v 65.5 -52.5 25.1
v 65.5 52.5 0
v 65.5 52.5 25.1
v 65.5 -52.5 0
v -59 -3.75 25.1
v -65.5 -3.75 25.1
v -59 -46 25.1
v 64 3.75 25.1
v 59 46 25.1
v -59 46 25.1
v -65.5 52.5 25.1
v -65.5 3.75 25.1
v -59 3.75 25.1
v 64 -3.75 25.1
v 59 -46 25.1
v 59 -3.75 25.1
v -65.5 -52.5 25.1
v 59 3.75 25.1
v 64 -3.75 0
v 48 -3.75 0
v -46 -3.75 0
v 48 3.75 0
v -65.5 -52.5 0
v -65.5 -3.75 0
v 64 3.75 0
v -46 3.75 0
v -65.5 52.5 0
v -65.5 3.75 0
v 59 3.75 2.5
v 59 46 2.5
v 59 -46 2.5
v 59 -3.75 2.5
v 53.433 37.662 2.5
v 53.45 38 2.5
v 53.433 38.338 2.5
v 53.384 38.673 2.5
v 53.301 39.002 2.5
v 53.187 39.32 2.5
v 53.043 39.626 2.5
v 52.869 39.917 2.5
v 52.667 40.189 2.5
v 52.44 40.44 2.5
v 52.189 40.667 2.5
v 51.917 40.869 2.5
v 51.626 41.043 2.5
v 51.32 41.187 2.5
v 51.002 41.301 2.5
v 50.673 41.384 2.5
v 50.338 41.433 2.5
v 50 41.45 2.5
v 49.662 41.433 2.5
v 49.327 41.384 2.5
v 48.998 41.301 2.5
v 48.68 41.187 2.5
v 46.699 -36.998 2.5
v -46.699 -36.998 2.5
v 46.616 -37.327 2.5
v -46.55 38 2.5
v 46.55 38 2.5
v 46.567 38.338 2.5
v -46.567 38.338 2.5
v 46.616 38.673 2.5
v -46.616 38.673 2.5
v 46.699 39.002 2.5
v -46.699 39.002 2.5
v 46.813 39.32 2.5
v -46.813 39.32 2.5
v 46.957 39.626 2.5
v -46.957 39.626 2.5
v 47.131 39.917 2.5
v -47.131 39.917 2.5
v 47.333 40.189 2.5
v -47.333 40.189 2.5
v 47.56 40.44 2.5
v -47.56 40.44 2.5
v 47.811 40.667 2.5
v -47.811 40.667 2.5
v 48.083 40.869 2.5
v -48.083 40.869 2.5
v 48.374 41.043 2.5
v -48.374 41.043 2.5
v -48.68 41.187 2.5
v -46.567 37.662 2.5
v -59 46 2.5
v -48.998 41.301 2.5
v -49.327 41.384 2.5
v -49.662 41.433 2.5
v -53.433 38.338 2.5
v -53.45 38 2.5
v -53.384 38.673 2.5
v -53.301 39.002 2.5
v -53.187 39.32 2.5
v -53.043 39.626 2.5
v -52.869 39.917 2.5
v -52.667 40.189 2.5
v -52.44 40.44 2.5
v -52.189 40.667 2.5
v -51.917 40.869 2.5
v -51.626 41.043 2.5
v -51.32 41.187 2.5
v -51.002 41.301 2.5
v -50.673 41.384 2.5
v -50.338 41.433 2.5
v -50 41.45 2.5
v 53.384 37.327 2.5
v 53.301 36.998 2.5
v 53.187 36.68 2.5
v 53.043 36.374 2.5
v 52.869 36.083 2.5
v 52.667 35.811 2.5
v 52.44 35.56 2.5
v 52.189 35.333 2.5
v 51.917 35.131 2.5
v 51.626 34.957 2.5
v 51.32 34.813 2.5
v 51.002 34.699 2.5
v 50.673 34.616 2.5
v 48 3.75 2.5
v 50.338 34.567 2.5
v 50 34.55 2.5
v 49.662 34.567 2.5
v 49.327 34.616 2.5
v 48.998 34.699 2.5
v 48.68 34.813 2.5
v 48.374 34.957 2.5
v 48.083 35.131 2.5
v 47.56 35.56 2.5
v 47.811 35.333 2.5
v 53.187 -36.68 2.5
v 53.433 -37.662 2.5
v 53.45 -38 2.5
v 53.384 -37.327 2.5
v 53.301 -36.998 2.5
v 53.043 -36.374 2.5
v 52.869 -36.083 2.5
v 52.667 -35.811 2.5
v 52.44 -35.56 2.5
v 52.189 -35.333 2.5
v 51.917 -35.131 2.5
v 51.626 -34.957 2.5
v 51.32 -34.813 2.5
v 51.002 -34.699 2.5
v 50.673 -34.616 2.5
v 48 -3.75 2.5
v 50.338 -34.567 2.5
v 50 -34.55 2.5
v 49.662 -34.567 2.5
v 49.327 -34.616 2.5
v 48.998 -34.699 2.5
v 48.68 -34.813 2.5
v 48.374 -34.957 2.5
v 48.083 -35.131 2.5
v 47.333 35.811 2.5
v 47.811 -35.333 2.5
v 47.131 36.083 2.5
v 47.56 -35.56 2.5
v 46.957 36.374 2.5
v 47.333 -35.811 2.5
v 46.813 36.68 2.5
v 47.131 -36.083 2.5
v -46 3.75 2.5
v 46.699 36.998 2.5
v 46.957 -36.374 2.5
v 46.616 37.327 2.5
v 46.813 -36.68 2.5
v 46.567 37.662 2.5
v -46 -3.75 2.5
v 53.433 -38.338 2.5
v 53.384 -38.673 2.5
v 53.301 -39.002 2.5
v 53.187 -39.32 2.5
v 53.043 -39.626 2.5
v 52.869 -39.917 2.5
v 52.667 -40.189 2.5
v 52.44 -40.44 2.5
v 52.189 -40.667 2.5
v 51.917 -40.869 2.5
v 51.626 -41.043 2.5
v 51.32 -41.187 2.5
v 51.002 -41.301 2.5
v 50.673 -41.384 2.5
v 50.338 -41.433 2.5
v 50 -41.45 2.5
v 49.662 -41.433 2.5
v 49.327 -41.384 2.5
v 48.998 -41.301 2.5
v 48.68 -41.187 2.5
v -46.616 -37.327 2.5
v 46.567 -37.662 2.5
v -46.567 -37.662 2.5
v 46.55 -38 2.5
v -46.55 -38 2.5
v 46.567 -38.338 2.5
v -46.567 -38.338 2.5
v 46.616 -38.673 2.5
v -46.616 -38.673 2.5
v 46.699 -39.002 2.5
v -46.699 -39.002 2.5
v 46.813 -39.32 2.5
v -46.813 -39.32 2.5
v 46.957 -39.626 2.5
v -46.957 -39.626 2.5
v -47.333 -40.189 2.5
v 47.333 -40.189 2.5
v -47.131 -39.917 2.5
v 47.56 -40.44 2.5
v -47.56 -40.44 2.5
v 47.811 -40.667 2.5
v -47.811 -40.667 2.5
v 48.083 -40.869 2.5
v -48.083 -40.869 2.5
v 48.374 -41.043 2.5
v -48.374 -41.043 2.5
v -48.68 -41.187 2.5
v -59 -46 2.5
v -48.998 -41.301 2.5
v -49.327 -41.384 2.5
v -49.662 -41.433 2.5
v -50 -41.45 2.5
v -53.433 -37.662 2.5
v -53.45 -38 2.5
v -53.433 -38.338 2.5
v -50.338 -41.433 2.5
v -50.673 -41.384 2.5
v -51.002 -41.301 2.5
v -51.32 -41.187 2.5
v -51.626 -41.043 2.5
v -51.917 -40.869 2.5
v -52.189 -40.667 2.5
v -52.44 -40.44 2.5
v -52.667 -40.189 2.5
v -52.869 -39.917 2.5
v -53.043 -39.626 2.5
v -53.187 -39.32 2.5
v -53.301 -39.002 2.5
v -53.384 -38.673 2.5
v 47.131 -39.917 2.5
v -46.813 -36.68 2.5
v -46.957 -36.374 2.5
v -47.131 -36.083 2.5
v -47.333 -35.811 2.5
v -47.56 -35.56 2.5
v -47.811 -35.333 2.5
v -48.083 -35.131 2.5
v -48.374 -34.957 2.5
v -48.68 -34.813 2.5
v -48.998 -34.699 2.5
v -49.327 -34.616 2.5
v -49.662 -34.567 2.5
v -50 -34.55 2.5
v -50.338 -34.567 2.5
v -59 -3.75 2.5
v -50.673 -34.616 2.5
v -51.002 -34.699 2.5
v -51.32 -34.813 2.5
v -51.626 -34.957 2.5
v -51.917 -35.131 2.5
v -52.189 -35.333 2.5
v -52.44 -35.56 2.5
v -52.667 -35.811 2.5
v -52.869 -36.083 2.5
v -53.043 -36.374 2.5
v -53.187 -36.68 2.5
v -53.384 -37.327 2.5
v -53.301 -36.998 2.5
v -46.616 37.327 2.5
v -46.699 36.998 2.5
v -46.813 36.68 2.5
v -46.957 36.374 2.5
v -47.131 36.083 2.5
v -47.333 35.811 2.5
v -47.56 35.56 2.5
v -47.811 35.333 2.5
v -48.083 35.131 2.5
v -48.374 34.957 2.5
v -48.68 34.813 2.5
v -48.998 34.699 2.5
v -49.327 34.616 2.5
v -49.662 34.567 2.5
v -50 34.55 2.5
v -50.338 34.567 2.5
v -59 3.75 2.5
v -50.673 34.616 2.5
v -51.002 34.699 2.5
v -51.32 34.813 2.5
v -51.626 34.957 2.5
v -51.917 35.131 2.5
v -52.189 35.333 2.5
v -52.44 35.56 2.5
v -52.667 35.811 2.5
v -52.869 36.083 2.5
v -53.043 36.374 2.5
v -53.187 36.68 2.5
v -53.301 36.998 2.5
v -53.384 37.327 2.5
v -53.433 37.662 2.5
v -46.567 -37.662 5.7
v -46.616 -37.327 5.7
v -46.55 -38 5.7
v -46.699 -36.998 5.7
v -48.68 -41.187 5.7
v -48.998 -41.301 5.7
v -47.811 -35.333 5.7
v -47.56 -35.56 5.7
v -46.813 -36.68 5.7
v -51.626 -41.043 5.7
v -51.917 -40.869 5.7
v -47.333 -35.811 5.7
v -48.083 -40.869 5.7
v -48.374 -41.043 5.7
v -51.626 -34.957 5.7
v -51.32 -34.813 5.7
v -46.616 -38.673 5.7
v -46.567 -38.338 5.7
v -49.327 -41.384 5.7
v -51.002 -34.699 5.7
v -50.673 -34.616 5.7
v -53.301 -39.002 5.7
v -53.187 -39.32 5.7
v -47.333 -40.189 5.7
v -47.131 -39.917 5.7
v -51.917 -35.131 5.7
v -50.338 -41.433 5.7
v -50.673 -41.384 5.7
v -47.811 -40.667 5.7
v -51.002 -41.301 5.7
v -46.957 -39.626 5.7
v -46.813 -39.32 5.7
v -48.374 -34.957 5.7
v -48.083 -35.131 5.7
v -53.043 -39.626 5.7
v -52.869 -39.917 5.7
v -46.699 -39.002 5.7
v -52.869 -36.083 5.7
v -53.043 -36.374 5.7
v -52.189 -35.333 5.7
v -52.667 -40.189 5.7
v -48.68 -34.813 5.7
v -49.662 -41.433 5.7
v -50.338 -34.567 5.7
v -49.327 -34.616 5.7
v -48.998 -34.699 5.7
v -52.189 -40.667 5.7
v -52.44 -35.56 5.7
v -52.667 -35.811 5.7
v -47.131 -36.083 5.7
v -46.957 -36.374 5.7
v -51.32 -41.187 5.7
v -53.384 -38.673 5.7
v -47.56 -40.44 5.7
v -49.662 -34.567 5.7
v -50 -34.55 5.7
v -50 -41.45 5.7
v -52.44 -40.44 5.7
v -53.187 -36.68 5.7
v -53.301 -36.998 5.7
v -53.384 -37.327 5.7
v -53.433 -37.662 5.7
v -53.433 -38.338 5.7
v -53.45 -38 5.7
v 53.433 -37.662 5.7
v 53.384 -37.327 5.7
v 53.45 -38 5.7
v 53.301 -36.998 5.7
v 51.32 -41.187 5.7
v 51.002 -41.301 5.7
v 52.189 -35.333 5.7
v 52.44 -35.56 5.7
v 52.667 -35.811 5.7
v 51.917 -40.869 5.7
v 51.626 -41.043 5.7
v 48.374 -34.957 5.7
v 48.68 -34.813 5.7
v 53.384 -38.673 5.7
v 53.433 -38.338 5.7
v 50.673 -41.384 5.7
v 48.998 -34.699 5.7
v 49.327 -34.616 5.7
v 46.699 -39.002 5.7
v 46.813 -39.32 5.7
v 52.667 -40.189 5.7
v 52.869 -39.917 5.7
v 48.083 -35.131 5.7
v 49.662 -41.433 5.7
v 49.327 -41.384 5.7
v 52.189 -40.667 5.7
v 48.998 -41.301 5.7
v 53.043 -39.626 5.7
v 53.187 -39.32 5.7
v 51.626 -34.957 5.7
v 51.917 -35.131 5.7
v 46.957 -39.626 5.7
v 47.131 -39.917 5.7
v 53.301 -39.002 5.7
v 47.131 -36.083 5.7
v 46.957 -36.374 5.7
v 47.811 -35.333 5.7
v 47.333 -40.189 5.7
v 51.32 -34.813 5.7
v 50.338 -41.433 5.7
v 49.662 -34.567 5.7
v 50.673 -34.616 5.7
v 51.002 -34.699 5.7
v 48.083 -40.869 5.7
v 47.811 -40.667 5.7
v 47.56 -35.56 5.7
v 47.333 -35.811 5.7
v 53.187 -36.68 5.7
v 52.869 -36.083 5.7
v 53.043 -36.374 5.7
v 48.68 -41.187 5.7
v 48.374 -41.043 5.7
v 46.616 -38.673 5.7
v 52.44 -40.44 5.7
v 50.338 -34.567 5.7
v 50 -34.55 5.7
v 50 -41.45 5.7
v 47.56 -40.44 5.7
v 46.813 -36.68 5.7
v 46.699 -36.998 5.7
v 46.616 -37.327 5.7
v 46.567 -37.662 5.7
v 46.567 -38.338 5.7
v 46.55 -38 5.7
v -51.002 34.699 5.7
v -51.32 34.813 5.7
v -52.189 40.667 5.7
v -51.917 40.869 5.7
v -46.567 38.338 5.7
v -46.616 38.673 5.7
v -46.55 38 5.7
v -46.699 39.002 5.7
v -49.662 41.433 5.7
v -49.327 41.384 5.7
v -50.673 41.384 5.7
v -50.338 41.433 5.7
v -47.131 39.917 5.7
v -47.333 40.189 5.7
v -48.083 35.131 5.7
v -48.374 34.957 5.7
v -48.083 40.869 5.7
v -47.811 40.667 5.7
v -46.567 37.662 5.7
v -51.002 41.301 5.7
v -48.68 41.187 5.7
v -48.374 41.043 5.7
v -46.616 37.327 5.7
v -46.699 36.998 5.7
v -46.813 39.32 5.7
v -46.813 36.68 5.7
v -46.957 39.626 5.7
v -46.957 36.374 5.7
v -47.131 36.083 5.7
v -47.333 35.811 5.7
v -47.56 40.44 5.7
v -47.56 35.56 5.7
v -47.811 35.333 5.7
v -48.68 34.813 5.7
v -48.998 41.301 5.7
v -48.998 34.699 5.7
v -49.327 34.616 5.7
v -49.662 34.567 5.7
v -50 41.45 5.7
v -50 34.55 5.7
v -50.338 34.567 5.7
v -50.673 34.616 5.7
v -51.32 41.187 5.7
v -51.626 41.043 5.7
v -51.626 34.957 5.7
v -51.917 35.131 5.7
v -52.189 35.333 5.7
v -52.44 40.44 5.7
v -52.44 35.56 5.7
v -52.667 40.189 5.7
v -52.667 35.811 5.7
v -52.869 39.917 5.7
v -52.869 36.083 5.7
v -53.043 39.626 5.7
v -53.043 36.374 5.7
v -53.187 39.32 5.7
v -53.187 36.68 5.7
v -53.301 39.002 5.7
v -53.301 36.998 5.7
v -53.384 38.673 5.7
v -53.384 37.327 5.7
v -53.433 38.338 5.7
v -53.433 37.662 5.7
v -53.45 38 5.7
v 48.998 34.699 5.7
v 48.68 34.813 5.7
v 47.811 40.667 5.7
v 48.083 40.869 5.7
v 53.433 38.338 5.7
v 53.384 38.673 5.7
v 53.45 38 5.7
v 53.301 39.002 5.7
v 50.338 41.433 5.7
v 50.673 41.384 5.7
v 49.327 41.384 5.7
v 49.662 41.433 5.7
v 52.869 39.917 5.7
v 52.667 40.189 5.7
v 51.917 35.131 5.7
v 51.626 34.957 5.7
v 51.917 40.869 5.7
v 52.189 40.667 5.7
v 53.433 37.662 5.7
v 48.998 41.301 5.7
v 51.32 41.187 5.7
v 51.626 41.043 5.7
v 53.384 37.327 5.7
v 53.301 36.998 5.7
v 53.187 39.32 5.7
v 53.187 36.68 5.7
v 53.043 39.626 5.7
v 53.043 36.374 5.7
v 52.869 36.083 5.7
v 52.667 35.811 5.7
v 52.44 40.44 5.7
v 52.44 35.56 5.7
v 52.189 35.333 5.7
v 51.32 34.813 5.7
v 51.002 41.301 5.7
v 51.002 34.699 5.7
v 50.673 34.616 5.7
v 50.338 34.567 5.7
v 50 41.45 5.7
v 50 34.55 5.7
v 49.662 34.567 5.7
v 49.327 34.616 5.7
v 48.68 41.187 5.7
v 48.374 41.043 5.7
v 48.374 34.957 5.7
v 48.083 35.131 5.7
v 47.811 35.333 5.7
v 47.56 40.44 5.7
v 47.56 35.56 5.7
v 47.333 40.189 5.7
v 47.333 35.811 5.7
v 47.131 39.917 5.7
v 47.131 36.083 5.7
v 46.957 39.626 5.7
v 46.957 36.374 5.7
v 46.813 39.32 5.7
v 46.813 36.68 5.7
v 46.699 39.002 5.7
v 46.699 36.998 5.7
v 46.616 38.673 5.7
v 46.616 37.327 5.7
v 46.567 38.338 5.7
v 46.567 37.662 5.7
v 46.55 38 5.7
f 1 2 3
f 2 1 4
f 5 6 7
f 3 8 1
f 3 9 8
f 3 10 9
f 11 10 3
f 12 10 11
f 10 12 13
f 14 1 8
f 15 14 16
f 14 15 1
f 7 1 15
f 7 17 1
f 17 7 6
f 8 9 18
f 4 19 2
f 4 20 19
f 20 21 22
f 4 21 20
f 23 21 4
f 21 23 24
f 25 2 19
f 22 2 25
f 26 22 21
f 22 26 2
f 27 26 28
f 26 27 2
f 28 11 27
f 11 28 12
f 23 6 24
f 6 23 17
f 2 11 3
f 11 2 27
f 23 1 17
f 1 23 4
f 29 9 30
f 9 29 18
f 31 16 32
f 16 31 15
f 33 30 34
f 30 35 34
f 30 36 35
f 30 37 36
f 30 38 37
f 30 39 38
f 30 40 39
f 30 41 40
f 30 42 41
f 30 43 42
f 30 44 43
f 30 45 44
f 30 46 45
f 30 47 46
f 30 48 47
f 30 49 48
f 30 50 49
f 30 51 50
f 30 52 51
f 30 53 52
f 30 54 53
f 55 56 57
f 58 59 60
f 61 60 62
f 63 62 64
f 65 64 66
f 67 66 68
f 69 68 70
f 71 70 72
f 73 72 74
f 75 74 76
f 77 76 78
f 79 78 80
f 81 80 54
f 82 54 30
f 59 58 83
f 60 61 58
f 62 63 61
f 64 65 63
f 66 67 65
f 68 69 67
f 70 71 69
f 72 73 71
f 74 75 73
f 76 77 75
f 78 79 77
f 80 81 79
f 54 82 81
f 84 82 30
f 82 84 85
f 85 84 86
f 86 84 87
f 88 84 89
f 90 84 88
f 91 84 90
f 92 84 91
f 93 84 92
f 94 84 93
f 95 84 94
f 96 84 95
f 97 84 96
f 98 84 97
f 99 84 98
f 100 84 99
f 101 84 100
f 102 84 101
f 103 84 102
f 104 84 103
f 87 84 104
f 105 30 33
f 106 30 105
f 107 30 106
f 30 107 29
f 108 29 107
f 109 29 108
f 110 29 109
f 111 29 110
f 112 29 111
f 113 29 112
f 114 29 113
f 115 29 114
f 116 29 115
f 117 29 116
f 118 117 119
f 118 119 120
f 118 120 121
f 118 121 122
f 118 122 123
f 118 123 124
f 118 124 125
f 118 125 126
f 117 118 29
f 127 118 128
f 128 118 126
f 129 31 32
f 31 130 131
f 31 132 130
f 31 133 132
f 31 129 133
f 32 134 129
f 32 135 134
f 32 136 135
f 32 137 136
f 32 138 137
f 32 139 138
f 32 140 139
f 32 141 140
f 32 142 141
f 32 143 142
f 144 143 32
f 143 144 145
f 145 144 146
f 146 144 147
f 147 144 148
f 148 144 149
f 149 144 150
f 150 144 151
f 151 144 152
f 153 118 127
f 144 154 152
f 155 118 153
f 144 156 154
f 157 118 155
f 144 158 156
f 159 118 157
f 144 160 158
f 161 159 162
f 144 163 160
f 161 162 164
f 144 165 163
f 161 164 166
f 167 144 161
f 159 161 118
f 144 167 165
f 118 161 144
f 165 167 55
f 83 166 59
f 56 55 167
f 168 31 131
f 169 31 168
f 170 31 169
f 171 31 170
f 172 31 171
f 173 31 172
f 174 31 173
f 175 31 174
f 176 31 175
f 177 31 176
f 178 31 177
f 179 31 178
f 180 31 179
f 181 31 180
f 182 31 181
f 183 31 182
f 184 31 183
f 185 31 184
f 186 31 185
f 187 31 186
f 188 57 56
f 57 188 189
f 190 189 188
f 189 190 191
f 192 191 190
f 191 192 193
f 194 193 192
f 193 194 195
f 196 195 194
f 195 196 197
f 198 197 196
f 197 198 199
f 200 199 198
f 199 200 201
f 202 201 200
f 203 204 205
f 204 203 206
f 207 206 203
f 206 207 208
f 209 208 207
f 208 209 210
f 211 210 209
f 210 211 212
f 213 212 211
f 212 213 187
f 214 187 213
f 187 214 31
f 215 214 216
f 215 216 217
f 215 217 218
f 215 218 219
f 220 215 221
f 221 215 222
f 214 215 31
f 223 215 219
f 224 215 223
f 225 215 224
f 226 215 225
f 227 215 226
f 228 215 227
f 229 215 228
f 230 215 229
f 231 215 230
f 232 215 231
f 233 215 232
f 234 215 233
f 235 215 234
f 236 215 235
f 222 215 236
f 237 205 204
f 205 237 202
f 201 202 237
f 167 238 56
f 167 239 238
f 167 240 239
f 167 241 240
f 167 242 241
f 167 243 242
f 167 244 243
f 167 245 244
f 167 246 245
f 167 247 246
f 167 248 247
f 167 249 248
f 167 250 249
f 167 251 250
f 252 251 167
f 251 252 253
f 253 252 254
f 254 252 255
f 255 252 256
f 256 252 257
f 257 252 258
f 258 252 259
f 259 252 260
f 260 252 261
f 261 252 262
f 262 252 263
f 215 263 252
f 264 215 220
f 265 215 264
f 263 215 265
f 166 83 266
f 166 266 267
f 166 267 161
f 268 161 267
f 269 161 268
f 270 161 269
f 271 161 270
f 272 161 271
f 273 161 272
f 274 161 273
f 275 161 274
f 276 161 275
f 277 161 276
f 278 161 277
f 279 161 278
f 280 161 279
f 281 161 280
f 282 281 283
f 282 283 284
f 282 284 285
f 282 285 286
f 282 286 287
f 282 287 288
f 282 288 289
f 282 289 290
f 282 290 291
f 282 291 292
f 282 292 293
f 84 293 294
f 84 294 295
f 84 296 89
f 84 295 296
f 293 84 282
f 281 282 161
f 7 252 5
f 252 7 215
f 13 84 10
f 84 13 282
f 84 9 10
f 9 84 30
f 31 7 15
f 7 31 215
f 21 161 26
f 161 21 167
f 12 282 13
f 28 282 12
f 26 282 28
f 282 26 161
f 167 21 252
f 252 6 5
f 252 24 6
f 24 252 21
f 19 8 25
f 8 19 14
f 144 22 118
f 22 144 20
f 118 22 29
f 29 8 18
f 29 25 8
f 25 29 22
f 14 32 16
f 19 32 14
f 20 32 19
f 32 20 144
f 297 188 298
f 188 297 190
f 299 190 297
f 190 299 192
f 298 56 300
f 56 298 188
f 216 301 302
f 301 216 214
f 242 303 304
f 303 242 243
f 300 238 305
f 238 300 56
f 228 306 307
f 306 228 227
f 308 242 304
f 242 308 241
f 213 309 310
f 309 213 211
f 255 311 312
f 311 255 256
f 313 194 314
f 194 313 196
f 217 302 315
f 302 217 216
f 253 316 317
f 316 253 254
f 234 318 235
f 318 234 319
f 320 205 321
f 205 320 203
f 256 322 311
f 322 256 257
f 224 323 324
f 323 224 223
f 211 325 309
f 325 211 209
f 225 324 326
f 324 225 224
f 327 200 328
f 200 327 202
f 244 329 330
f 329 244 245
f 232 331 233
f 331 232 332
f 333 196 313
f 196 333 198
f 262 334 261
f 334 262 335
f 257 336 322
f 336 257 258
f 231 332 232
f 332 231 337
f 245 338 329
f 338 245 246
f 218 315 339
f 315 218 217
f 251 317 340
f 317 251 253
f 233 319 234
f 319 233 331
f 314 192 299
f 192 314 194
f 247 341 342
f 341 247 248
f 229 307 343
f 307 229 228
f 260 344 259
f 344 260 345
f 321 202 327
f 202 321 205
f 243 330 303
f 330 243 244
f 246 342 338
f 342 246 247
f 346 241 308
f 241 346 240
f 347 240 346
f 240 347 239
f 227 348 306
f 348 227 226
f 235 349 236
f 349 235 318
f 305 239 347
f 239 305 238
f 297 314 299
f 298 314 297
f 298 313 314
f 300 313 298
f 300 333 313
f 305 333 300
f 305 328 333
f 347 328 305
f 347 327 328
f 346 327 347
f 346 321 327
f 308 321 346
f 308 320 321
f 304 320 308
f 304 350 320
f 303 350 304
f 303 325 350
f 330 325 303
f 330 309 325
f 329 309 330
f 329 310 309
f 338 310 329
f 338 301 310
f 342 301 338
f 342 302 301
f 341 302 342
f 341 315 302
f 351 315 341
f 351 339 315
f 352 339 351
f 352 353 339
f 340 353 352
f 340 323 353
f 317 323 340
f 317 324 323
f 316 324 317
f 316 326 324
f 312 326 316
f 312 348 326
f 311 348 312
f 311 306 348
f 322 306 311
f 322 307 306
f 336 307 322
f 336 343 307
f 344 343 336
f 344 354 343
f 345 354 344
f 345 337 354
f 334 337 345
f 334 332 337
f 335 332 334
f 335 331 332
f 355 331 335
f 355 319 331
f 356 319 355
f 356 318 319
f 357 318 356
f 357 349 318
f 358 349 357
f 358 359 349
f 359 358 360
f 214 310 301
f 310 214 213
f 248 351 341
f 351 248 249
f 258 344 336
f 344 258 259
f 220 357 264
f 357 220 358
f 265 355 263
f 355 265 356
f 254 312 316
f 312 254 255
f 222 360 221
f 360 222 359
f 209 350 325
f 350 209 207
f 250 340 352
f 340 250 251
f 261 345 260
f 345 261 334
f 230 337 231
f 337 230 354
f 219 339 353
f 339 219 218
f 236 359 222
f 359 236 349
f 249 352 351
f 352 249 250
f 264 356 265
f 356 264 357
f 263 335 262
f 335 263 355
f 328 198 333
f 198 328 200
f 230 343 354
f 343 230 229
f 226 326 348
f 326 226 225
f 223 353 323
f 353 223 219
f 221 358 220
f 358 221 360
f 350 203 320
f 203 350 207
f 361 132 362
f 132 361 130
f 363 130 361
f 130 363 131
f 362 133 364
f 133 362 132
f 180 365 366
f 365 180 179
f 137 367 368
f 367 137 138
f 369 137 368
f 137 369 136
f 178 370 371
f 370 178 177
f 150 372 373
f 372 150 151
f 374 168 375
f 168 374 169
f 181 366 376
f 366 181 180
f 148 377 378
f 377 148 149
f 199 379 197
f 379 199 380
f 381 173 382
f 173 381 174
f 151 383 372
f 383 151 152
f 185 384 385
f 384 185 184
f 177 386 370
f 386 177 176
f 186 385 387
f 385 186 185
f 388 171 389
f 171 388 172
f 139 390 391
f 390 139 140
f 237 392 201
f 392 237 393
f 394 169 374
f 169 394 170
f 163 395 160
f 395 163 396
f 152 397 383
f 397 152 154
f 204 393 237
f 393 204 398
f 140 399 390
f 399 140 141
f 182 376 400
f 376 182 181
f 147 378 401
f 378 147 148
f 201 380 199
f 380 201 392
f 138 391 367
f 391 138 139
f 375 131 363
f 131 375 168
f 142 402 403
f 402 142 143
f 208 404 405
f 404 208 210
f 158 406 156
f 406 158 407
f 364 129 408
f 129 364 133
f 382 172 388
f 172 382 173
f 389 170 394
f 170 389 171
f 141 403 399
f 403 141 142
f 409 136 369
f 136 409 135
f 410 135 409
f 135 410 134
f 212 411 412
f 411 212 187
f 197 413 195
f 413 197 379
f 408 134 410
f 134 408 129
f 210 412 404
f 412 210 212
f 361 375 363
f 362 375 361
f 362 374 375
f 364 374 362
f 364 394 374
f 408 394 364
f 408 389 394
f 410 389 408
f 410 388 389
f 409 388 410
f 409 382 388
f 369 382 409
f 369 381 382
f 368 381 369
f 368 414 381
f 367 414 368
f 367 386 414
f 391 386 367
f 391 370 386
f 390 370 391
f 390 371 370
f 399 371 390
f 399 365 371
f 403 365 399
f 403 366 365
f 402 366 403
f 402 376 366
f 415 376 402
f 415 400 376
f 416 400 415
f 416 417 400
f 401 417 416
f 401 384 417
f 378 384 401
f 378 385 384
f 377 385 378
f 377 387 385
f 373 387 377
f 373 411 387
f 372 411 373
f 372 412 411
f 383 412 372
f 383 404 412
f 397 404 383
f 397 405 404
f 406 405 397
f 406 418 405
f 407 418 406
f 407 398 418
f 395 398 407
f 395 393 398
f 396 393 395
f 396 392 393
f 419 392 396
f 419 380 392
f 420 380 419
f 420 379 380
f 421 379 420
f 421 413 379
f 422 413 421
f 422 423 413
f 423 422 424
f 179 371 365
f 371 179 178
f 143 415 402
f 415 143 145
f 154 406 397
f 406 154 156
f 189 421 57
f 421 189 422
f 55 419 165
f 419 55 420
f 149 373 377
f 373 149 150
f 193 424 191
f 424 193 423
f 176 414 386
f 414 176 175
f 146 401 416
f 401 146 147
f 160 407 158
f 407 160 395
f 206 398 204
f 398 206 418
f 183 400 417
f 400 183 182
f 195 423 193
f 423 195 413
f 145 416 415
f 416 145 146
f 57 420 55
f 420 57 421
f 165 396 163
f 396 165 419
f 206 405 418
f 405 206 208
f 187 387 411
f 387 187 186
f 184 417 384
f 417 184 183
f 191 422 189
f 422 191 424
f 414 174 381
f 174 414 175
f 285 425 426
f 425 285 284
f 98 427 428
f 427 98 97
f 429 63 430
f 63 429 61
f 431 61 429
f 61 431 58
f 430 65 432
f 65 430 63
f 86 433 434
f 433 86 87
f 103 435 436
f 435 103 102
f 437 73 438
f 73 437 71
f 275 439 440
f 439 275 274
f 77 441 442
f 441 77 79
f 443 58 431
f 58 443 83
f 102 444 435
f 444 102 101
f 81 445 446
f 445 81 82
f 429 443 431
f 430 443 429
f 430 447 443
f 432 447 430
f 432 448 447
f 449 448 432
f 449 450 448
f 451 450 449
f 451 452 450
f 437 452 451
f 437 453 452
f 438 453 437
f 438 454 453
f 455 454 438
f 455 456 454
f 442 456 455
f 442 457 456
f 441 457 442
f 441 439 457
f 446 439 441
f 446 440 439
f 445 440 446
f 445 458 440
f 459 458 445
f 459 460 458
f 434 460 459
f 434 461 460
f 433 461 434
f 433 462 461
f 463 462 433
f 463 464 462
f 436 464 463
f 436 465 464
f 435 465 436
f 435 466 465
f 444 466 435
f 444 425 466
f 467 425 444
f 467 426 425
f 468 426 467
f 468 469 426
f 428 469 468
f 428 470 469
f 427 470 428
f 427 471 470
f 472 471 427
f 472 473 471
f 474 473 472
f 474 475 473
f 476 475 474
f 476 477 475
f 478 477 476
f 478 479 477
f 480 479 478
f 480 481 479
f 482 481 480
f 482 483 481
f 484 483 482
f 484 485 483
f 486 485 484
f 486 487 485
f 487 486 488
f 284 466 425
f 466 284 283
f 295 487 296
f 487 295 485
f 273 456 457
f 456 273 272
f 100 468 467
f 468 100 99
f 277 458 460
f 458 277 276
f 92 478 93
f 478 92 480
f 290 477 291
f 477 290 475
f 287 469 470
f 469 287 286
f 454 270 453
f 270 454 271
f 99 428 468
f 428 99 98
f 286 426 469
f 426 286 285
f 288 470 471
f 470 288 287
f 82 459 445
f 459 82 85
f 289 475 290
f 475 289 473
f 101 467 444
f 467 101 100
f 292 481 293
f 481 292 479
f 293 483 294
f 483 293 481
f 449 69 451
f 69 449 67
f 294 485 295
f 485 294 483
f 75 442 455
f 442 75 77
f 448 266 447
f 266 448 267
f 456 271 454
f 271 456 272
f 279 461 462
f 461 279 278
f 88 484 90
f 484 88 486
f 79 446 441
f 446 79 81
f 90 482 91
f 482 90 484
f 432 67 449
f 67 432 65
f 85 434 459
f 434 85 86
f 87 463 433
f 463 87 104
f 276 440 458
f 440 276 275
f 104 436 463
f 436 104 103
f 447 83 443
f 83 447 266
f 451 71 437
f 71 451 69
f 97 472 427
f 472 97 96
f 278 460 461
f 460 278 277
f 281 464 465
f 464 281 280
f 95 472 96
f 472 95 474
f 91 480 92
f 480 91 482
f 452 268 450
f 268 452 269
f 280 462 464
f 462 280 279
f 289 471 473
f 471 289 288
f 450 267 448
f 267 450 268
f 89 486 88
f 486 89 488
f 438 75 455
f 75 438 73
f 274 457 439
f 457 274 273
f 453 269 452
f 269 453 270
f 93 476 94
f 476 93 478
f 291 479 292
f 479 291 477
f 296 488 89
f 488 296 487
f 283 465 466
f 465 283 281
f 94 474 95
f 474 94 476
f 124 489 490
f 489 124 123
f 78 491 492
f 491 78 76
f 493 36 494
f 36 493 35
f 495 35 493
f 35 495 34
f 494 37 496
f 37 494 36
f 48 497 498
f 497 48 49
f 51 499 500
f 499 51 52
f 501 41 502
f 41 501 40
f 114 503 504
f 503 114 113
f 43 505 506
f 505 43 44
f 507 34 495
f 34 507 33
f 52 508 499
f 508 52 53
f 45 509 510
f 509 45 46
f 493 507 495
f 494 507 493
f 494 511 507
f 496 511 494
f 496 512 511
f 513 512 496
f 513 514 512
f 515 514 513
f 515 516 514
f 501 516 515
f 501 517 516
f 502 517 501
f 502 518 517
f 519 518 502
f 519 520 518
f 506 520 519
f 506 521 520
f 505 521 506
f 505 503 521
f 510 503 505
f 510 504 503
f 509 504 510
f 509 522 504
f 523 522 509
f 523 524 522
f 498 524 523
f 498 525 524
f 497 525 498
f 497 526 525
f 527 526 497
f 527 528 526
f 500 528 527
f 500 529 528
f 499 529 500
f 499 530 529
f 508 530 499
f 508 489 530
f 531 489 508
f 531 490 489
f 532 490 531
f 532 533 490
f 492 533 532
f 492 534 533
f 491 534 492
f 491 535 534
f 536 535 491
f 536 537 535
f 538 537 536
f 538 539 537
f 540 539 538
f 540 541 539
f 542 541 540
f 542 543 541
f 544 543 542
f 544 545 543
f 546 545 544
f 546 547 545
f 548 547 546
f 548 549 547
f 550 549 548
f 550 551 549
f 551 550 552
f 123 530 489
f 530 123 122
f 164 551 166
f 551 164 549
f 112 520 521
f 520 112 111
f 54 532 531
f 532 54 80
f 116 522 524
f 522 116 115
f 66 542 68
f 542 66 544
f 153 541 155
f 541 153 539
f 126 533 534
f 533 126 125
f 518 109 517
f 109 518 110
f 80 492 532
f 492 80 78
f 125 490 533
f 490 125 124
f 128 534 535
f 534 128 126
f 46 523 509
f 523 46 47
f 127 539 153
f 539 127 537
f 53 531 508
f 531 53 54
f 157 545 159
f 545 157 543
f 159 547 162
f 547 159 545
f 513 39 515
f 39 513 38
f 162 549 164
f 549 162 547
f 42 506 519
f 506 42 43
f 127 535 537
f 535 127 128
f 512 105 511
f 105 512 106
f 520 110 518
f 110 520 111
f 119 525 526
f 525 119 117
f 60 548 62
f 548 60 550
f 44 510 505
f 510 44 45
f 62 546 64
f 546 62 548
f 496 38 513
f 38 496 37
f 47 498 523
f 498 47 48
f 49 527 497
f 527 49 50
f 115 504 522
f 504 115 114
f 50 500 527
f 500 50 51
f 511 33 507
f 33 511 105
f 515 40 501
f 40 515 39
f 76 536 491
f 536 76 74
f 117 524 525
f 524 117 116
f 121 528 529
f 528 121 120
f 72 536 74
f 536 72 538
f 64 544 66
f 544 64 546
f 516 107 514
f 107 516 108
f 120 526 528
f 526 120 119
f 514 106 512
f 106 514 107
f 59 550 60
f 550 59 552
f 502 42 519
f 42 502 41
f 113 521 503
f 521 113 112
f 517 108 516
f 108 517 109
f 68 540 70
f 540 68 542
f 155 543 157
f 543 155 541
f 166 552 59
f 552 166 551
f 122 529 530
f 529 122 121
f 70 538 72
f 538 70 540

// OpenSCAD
// file: 01_kicad_parameters.scad
// KiCad-generated OpenSCAD parameter handoff.
// Source: 01_kicad_mechanical_map.csv and 01_kicad_board.kicad_pcb.
$fn = 64;
board = [118.000, 92.000, 1.600];
enclosure = [131.000, 105.000, 25.100];
wall = 2.500;
lid_clearance = 3.000;

// [reference, kind, x_mm, y_mm, height_mm, keepout_radius_mm, role]
mechanical_features = [
  ["U1", "THERMAL_SENSOR", 0.000, 18.000, 2.000, 8.000, "component_keepout"],
  ["H1", "HEATER_ZONE", -24.000, -12.000, 1.000, 18.000, "component_keepout"],
  ["H2", "HEATER_ZONE", 24.000, -12.000, 1.000, 18.000, "component_keepout"],
  ["J1", "USB_C", -56.000, 0.000, 4.600, 10.000, "connector_window"],
  ["J2", "SYNC", 56.000, 0.000, 4.000, 8.000, "connector_window"],
  ["MH1", "MOUNTING_HOLE", -50.000, -38.000, 0.000, 1.500, "standoff_axis"],
  ["MH2", "MOUNTING_HOLE", 50.000, -38.000, 0.000, 1.500, "standoff_axis"],
  ["MH3", "MOUNTING_HOLE", -50.000, 38.000, 0.000, 1.500, "standoff_axis"],
  ["MH4", "MOUNTING_HOLE", 50.000, 38.000, 0.000, 1.500, "standoff_axis"],
];

standoff_axes = [for (f = mechanical_features) if (f[6] == "standoff_axis") [f[2], f[3], f[5], f[0]]];
interface_features = [for (f = mechanical_features) if (f[6] == "connector_window" || f[6] == "access_bore" || f[6] == "antenna_keepout") [f[2], f[3], f[5], f[0], f[6]]];
// main file
// Task 09: Thermal camera calibration target PCB mount
// OpenSCAD stage consumes the KiCad-generated 01_kicad_parameters.scad handoff.
include <01_kicad_parameters.scad>;

module standoff(x, y) {
  translate([x, y, board[2]]) cylinder(d=6.900, h=wall + board[2]);
}
module keepout_window(x, y, r) {
  translate([x, y, enclosure[2]/2]) cube([2*r, wall*3, enclosure[2]], center=true);
}
module enclosure_shell() {
  difference() {
    translate([-enclosure[0]/2, -enclosure[1]/2, 0]) cube(enclosure);
    translate([-board[0]/2, -board[1]/2, wall]) cube([board[0], board[1], enclosure[2]]);
    // J1 USB_C side/service keepout
    keepout_window(-56.000, 0.000, 10.000);
    // J2 SYNC side/service keepout
    keepout_window(56.000, 0.000, 8.000);
  }
}
// MH1 copied from KiCad at (-50.000, -38.000)
// MH2 copied from KiCad at (50.000, -38.000)
// MH3 copied from KiCad at (-50.000, 38.000)
// MH4 copied from KiCad at (50.000, 38.000)
union() {
  enclosure_shell();
  standoff(-50.000, -38.000);
  standoff(50.000, -38.000);
  standoff(-50.000, 38.000);
  standoff(50.000, 38.000);
}
